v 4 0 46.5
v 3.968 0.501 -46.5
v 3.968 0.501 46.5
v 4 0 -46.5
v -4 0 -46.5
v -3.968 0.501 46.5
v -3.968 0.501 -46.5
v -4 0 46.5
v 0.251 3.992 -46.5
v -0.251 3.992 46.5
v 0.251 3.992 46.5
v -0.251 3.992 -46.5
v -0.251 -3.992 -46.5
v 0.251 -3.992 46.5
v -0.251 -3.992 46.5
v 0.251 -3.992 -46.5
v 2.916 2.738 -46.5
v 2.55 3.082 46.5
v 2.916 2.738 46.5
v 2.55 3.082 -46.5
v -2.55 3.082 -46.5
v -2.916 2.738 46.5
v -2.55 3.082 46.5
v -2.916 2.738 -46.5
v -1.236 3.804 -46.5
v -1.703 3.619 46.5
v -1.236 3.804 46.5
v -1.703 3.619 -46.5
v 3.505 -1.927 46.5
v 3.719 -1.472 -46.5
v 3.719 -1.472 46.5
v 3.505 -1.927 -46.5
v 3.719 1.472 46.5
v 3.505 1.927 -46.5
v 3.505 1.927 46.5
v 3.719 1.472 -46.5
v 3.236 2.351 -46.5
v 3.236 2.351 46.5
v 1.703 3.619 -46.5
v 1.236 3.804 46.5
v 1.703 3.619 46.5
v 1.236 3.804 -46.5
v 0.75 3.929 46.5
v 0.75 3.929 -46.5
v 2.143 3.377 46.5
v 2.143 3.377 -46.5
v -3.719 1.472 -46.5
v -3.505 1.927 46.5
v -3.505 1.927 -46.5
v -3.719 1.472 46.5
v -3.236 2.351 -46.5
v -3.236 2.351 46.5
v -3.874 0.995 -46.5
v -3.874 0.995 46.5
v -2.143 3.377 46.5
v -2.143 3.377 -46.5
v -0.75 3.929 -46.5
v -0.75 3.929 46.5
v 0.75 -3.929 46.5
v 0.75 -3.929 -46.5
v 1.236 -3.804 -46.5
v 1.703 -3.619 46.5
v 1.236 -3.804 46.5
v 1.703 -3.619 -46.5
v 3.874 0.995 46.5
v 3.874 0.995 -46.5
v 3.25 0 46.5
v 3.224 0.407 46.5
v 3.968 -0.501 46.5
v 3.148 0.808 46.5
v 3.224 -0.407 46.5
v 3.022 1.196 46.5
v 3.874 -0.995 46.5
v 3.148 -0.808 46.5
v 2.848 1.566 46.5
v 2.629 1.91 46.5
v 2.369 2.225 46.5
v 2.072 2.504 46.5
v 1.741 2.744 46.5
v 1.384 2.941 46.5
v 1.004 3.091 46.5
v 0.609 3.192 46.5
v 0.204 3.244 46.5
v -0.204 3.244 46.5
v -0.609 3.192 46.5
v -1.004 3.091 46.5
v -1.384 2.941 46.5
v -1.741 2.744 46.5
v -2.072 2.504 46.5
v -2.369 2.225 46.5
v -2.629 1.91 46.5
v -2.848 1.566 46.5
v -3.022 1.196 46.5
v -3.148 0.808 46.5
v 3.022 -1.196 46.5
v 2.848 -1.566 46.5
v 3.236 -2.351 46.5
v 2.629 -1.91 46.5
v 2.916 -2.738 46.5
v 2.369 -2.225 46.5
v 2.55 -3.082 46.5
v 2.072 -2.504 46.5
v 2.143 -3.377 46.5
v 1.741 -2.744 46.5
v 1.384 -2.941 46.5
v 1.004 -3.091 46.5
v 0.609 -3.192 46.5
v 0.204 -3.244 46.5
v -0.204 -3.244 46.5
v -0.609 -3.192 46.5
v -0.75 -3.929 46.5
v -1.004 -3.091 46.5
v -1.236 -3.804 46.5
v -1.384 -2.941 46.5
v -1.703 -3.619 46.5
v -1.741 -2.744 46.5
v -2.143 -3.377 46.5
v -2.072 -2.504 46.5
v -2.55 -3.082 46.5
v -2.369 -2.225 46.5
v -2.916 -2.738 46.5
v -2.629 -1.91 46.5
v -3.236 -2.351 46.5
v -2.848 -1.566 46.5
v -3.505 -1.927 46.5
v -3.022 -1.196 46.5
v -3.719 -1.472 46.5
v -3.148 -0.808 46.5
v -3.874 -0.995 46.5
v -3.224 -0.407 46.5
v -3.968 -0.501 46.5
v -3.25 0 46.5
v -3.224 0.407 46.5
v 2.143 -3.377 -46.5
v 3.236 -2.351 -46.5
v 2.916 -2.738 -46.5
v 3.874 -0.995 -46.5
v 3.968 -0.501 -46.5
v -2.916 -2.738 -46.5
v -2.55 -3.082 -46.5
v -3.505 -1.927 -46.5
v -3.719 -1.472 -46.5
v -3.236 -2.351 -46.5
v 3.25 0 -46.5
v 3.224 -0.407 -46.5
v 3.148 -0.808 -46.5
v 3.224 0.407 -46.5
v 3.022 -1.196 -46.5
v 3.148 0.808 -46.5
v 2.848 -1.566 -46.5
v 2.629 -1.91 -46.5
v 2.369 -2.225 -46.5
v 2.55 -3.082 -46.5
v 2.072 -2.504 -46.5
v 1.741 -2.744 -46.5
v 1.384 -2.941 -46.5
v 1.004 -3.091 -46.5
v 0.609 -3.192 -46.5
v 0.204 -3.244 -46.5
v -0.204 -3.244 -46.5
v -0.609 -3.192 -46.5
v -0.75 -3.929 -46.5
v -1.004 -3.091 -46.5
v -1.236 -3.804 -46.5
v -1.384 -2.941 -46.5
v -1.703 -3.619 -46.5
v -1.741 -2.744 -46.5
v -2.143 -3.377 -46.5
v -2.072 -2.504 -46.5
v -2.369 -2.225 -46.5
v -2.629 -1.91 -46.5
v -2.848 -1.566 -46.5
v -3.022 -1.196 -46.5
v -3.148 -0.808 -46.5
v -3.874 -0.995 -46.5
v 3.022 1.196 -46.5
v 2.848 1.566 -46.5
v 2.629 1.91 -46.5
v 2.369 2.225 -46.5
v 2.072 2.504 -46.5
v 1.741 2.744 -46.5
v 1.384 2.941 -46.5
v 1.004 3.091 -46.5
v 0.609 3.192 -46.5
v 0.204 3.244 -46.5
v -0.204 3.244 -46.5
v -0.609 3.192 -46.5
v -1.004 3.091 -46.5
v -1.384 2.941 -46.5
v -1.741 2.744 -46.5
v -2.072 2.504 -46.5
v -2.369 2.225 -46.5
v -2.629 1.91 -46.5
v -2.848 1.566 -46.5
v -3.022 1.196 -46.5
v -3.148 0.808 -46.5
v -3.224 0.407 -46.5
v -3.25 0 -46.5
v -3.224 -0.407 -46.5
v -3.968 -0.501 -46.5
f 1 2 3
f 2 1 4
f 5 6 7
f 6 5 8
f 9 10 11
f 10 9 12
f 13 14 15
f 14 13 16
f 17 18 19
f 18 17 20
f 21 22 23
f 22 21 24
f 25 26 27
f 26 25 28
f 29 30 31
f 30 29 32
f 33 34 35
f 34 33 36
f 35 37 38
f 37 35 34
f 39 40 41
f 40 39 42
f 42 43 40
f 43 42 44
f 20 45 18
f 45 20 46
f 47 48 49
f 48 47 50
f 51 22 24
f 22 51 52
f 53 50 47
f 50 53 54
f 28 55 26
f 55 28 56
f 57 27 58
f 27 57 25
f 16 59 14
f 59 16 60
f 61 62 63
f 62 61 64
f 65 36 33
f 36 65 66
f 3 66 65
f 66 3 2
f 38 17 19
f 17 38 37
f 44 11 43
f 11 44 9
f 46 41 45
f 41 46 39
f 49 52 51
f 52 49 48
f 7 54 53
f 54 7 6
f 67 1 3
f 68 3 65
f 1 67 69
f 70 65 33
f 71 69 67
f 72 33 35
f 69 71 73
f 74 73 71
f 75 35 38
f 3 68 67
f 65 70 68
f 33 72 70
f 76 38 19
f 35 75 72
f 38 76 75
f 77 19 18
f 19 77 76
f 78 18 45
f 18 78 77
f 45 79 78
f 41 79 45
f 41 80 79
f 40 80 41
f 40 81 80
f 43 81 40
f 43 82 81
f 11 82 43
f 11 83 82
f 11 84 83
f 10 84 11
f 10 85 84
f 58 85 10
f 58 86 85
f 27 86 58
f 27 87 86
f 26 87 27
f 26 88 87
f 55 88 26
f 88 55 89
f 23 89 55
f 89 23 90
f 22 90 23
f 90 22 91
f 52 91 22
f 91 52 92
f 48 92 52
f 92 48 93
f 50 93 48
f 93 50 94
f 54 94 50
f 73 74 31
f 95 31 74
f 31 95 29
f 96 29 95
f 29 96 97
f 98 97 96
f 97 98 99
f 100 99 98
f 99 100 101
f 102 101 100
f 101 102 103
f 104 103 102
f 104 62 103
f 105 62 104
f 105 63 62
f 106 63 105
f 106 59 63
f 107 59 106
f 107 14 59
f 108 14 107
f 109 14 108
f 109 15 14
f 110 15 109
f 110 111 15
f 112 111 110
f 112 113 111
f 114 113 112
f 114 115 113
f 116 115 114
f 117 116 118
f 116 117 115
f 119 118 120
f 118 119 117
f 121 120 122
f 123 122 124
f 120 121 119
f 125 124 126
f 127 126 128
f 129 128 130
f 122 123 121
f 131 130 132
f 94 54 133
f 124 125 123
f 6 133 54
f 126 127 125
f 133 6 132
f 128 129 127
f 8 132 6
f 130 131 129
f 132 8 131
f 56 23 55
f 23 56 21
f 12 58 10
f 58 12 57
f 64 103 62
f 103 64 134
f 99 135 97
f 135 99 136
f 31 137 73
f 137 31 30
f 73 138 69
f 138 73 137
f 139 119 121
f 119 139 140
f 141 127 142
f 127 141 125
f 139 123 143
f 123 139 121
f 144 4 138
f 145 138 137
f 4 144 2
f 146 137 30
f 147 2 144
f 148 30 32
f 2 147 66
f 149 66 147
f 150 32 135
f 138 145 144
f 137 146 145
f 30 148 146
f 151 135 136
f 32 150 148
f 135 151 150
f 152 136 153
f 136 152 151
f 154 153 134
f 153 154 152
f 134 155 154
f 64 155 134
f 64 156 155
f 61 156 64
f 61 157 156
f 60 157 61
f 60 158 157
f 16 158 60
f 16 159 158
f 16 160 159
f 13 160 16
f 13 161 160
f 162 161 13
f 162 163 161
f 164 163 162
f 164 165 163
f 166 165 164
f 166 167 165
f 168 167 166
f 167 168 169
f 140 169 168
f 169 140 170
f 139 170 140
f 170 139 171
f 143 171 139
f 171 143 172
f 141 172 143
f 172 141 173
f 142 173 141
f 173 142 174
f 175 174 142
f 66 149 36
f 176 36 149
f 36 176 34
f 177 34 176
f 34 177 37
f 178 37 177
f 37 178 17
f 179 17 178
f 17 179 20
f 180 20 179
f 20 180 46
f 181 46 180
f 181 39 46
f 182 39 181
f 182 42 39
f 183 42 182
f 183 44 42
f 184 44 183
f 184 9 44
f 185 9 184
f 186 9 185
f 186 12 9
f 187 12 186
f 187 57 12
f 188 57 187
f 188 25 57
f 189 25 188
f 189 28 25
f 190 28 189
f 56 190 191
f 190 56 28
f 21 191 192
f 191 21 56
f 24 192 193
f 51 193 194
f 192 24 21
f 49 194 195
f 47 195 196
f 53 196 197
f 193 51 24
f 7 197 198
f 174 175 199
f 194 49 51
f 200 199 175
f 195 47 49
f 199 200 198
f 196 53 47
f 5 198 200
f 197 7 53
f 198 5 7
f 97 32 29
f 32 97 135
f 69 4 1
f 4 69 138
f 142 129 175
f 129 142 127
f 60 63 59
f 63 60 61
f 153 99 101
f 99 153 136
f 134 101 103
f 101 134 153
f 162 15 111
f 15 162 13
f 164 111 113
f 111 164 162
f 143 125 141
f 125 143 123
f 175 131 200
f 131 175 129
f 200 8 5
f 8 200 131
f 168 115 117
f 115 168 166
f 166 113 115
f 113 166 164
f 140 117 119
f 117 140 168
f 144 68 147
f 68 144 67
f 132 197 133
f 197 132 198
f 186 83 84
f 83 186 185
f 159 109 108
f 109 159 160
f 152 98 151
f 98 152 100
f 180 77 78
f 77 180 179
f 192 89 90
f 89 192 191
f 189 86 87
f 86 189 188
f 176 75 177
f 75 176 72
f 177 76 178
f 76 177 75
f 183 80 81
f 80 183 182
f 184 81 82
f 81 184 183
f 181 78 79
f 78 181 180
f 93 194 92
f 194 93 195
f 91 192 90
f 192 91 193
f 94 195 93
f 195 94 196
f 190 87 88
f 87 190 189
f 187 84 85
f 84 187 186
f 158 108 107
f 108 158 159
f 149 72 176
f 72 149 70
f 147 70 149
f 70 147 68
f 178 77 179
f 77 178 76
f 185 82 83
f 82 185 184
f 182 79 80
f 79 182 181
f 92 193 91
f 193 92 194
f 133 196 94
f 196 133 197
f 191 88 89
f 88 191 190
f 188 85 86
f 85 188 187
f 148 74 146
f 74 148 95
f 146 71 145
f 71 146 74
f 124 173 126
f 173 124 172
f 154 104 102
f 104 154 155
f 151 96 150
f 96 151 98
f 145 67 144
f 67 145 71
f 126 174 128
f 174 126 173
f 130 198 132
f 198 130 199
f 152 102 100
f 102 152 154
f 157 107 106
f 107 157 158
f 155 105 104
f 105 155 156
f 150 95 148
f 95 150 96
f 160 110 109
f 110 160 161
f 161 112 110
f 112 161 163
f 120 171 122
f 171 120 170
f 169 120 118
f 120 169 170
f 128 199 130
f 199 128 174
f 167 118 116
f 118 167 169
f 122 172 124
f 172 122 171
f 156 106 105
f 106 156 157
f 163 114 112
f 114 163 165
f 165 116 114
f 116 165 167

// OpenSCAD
$fn = 50;


difference() {
	union() {
		translate(v = [0, 0, -46.5000000000]) {
			cylinder(h = 93, r = 4.0000000000);
		}
	}
	union() {
		translate(v = [0, 0, -100.0000000000]) {
			cylinder(h = 200, r = 3.2500000000);
		}
	}
}
